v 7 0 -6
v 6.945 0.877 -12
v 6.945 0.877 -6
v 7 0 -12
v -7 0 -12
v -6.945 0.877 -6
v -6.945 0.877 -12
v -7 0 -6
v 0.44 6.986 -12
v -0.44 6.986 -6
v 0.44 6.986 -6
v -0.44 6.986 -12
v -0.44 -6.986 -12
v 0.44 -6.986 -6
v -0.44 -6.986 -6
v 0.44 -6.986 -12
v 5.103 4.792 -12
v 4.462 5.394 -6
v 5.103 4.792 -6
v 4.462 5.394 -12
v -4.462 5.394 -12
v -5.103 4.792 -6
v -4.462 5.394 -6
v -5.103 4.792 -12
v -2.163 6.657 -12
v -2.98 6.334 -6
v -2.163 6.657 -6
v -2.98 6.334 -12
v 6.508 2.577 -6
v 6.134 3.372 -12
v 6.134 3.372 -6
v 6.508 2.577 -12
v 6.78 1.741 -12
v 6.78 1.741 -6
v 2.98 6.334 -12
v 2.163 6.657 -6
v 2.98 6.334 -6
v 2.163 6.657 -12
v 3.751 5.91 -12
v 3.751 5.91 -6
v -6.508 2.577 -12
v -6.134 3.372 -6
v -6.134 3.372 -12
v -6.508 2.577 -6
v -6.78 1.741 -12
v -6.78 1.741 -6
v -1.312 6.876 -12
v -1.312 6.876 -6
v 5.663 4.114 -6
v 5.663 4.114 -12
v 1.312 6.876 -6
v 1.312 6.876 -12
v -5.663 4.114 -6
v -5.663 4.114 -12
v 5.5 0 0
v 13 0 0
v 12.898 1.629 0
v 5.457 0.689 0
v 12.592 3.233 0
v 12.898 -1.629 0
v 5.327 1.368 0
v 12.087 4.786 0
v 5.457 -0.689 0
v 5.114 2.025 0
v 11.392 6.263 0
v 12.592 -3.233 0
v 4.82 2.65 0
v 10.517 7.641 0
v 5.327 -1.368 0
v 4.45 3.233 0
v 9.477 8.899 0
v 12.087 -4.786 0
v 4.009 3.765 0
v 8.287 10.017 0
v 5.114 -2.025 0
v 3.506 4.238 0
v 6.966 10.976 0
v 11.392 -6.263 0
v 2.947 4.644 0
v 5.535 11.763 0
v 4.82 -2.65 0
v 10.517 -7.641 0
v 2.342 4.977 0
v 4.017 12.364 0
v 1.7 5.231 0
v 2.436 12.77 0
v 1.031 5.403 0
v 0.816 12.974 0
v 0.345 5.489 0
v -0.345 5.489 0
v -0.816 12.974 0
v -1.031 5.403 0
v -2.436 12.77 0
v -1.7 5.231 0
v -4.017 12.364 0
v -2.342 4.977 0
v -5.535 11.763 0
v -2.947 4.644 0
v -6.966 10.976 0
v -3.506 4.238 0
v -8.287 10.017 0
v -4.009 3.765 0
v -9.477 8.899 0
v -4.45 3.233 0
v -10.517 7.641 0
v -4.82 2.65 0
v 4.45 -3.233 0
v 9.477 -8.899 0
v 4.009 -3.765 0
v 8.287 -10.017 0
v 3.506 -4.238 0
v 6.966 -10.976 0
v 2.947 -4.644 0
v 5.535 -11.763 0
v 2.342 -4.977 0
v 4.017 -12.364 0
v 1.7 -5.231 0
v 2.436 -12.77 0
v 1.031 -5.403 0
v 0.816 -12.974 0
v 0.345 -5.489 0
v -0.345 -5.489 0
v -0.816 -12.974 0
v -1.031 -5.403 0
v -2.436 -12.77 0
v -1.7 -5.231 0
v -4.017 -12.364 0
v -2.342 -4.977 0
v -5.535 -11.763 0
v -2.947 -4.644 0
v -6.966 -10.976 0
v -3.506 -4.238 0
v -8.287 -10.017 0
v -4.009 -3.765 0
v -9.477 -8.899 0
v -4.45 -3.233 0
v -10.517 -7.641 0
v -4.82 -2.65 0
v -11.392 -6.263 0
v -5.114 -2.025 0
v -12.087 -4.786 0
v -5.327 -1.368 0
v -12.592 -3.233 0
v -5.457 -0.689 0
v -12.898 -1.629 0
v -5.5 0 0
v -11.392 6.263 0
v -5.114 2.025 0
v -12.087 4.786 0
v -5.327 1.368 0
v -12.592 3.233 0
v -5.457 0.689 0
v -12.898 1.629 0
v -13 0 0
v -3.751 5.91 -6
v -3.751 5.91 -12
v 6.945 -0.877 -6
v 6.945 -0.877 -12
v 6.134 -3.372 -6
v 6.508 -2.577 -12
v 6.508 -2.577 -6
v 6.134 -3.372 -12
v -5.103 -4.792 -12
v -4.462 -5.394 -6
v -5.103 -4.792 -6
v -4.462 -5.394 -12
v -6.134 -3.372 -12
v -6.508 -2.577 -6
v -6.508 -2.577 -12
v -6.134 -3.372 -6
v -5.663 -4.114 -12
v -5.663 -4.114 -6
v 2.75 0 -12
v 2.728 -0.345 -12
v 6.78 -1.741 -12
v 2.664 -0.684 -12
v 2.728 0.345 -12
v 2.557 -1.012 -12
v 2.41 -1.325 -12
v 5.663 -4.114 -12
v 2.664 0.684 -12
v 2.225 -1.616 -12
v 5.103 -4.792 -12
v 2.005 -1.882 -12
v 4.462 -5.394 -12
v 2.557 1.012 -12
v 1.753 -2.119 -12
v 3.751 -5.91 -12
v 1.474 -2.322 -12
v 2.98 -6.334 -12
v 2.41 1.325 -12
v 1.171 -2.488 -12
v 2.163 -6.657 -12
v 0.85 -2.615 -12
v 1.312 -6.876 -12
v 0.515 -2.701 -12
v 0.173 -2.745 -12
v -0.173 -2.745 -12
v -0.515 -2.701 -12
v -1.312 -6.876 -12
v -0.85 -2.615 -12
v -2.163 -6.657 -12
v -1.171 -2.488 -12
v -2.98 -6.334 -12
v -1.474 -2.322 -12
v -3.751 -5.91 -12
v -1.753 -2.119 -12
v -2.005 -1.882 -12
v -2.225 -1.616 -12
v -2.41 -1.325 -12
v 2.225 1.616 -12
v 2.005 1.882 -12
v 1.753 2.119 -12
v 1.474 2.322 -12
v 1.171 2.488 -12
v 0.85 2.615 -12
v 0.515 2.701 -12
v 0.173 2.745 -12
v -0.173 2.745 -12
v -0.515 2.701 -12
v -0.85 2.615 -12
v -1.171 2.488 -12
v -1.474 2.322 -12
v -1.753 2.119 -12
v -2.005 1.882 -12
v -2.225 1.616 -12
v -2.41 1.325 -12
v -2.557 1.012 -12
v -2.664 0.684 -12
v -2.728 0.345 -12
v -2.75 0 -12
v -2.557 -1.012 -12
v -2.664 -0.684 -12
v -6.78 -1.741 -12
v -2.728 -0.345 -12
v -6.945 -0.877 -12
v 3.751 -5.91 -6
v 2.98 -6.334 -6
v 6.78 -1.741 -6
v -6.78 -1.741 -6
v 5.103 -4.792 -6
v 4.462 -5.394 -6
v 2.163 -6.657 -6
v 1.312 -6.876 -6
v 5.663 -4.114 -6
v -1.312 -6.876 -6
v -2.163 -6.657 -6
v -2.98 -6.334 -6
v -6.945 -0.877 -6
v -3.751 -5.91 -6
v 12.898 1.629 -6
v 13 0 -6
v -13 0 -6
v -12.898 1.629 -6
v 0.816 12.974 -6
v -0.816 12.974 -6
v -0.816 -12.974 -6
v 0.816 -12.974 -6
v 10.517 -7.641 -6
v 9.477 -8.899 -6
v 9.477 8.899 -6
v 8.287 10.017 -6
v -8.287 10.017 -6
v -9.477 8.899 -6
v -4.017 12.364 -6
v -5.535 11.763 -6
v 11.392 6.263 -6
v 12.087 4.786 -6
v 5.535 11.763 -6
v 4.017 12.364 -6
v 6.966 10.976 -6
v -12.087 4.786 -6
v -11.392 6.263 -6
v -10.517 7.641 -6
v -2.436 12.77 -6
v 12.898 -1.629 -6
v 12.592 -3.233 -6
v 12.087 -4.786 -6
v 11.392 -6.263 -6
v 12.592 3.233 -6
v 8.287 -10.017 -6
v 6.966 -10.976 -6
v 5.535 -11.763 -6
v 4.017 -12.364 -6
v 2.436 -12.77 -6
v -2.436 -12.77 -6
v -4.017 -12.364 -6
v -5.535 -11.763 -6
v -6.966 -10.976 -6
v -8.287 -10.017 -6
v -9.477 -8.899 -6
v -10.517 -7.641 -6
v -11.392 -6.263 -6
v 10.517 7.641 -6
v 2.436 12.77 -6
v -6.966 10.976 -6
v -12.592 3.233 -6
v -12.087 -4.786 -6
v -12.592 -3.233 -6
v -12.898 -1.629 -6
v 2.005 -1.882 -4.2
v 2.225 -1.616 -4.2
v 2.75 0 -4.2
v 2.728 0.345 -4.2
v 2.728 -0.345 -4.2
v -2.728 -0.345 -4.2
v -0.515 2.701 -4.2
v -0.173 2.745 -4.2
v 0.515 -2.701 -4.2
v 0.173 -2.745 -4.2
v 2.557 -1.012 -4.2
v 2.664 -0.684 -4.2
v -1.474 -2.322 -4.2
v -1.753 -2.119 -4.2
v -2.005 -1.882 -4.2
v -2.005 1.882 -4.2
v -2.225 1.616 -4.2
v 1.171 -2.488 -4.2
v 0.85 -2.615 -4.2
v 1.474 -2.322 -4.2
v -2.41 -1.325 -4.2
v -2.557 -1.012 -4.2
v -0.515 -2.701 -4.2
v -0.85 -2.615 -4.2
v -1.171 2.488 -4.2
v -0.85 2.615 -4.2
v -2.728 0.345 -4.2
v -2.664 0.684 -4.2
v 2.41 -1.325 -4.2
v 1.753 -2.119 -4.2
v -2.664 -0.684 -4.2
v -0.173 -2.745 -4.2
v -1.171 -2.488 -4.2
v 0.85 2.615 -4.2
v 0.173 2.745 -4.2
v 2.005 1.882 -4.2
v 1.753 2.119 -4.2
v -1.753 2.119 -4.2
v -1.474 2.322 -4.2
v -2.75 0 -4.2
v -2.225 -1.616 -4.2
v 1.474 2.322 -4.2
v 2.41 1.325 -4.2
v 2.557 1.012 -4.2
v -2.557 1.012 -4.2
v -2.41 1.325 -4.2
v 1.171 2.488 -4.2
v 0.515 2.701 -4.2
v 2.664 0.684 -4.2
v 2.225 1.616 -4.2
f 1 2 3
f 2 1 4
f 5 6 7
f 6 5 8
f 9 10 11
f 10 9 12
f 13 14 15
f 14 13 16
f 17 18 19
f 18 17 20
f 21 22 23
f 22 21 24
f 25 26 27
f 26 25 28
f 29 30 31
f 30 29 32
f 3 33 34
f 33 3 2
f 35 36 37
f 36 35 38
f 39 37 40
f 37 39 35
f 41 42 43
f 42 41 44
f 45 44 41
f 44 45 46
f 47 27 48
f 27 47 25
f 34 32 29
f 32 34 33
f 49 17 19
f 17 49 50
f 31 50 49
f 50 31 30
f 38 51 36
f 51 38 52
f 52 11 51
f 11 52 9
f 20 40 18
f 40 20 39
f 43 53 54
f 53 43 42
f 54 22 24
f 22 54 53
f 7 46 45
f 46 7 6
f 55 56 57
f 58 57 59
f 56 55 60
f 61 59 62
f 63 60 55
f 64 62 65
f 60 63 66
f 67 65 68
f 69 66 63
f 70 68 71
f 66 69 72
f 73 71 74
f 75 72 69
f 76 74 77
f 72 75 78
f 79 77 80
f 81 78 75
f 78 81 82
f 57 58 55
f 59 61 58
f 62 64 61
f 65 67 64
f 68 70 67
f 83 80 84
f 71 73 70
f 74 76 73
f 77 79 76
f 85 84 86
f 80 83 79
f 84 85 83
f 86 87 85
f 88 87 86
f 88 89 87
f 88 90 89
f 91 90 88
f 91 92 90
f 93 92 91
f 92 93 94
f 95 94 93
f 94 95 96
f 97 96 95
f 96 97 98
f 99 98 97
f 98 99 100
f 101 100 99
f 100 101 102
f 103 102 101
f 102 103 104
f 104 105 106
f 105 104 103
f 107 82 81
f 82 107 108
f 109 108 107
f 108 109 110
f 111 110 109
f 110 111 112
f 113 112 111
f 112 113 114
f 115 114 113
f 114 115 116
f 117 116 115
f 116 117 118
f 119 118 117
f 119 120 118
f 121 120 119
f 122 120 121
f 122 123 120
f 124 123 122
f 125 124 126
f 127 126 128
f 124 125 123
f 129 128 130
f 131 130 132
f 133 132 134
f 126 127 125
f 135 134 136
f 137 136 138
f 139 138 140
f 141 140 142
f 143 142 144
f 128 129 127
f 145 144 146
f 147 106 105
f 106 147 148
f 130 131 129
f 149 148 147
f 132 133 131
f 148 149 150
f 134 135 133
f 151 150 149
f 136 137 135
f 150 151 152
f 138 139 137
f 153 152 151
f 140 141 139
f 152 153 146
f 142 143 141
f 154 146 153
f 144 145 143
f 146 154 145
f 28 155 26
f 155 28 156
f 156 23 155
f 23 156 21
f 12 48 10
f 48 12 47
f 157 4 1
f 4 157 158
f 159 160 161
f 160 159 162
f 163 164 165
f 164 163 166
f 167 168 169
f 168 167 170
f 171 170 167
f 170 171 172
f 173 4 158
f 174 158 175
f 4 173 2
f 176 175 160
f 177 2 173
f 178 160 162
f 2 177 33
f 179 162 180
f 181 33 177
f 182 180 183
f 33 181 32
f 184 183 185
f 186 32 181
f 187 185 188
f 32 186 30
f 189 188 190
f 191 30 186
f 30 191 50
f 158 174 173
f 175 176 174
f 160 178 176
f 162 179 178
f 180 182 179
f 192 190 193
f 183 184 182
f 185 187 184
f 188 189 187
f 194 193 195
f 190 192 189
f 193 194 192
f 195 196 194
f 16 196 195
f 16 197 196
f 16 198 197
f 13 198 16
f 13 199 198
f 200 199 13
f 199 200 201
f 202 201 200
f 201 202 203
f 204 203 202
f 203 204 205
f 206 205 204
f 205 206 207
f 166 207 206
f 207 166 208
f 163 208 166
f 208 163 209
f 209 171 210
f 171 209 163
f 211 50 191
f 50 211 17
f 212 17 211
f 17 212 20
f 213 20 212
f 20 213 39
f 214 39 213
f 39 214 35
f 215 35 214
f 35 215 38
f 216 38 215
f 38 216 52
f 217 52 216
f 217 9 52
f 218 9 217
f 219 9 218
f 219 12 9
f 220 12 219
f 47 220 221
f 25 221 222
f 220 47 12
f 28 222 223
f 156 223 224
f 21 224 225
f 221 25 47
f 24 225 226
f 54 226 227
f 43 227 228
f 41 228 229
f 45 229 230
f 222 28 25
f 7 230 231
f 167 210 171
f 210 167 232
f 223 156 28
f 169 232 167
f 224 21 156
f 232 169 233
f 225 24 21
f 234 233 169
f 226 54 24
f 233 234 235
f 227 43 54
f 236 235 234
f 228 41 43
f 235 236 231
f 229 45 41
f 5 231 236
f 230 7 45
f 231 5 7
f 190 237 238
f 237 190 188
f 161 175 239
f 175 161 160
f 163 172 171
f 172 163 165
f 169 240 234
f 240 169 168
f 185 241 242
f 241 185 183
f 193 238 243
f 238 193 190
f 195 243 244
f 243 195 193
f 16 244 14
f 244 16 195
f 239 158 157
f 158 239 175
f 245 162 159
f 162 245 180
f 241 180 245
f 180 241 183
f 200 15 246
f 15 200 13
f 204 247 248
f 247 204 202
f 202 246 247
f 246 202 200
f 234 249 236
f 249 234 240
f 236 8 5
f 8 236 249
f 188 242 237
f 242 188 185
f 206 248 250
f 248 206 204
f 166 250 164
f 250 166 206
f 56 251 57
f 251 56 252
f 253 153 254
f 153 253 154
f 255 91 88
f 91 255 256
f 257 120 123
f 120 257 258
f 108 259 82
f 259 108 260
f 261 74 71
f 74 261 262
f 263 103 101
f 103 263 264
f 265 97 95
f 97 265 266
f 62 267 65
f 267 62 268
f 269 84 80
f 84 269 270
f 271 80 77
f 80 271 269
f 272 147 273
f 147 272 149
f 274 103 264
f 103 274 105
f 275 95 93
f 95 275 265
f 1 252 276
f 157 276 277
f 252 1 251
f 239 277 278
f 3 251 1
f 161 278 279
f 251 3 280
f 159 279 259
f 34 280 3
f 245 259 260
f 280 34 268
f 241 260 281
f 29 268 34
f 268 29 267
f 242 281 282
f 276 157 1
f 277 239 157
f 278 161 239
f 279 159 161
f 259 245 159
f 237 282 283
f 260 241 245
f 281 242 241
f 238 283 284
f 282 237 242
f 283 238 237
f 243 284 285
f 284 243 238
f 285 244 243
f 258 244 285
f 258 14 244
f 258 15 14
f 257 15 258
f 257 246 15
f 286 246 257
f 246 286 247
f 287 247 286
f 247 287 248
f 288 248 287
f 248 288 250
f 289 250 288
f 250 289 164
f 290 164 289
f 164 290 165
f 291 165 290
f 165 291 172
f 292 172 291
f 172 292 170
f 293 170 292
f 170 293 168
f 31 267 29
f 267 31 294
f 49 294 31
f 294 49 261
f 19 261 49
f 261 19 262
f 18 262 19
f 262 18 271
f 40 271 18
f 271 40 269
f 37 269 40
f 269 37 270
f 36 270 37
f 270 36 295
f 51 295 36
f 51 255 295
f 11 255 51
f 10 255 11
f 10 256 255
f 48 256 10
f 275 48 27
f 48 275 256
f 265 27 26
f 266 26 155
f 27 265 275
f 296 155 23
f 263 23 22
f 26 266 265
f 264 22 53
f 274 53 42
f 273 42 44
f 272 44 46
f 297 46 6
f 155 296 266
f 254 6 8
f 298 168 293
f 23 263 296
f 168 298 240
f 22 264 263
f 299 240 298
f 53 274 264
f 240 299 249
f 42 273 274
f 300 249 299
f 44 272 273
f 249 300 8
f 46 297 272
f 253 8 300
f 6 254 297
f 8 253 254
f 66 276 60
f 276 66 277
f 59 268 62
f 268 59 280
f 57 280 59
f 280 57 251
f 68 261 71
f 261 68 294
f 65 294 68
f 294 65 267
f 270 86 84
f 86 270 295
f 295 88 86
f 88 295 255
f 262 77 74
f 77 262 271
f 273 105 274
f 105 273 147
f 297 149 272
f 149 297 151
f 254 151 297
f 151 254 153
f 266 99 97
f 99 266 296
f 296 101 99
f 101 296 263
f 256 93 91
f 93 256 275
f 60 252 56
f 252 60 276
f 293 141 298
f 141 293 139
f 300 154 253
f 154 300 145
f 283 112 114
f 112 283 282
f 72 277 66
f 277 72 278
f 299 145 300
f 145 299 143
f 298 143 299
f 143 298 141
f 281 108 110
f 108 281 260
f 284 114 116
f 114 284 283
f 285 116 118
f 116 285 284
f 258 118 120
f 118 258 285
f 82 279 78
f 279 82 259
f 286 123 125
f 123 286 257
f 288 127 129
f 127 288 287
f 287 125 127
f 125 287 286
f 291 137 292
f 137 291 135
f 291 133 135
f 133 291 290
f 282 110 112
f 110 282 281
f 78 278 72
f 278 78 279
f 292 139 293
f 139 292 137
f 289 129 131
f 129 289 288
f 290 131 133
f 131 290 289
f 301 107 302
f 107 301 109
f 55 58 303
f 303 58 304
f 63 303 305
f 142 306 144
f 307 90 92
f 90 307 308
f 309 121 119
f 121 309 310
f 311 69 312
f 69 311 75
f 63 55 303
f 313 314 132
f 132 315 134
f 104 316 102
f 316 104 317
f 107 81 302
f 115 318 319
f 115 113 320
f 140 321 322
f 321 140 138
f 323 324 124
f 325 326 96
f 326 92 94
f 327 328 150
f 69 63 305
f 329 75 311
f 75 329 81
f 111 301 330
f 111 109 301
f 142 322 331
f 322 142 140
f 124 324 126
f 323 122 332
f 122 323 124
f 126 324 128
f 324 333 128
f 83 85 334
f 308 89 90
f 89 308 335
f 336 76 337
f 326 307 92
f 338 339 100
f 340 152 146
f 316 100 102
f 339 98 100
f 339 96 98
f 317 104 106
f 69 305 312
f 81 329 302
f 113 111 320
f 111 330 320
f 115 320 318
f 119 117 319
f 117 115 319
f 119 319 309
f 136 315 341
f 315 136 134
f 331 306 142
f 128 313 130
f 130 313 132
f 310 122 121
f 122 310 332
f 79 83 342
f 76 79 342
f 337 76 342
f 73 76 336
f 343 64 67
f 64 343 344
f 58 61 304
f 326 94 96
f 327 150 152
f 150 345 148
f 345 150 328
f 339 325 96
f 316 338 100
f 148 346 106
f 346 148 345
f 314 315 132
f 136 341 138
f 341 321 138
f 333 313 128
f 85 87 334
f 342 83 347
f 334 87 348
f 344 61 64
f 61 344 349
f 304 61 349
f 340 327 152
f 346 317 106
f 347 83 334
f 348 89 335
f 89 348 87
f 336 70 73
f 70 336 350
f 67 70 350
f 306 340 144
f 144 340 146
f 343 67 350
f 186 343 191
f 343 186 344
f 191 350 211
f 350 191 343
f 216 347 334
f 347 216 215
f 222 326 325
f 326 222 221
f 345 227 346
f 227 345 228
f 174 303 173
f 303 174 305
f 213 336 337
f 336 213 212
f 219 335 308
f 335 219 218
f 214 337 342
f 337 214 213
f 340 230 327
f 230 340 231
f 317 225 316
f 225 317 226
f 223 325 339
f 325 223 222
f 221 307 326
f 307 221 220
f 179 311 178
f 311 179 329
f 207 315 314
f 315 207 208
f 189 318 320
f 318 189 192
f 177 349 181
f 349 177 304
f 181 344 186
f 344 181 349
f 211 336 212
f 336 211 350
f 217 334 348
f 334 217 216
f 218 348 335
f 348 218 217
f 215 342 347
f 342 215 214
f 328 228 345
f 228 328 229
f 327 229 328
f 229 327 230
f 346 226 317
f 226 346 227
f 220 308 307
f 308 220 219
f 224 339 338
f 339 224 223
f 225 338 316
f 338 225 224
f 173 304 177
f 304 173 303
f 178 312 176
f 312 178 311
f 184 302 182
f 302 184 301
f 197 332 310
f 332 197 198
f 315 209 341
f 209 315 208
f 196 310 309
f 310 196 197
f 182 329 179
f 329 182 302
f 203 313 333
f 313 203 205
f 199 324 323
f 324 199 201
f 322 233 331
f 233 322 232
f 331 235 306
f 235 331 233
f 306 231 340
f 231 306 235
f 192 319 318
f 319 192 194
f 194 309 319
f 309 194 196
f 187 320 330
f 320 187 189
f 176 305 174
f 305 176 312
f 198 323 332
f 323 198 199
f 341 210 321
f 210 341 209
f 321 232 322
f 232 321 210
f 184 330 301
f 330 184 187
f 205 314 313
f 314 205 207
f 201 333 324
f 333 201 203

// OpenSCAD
$fn = 50;


difference() {
	union() {
		translate(v = [0, 0, -12.0000000000]) {
			cylinder(h = 12, r = 7.0000000000);
		}
		translate(v = [0, 0, -6.0000000000]) {
			cylinder(h = 6, r = 13.0000000000);
		}
	}
	union() {
		translate(v = [0, 0, 0]) {
			rotate(a = [0, 0, 0]) {
				difference() {
					union() {
						#translate(v = [0, 0, -12.0000000000]) {
							cylinder(h = 12, r = 2.2500000000);
						}
						#translate(v = [0, 0, -4.2000000000]) {
							cylinder(h = 4.2000000000, r1 = 2.7500000000, r2 = 5.5000000000);
						}
						#translate(v = [0, 0, -12.0000000000]) {
							cylinder(h = 12, r = 2.7500000000);
						}
						#translate(v = [0, 0, -12.0000000000]) {
							cylinder(h = 12, r = 2.2500000000);
						}
					}
					union();
				}
			}
		}
	}
}
